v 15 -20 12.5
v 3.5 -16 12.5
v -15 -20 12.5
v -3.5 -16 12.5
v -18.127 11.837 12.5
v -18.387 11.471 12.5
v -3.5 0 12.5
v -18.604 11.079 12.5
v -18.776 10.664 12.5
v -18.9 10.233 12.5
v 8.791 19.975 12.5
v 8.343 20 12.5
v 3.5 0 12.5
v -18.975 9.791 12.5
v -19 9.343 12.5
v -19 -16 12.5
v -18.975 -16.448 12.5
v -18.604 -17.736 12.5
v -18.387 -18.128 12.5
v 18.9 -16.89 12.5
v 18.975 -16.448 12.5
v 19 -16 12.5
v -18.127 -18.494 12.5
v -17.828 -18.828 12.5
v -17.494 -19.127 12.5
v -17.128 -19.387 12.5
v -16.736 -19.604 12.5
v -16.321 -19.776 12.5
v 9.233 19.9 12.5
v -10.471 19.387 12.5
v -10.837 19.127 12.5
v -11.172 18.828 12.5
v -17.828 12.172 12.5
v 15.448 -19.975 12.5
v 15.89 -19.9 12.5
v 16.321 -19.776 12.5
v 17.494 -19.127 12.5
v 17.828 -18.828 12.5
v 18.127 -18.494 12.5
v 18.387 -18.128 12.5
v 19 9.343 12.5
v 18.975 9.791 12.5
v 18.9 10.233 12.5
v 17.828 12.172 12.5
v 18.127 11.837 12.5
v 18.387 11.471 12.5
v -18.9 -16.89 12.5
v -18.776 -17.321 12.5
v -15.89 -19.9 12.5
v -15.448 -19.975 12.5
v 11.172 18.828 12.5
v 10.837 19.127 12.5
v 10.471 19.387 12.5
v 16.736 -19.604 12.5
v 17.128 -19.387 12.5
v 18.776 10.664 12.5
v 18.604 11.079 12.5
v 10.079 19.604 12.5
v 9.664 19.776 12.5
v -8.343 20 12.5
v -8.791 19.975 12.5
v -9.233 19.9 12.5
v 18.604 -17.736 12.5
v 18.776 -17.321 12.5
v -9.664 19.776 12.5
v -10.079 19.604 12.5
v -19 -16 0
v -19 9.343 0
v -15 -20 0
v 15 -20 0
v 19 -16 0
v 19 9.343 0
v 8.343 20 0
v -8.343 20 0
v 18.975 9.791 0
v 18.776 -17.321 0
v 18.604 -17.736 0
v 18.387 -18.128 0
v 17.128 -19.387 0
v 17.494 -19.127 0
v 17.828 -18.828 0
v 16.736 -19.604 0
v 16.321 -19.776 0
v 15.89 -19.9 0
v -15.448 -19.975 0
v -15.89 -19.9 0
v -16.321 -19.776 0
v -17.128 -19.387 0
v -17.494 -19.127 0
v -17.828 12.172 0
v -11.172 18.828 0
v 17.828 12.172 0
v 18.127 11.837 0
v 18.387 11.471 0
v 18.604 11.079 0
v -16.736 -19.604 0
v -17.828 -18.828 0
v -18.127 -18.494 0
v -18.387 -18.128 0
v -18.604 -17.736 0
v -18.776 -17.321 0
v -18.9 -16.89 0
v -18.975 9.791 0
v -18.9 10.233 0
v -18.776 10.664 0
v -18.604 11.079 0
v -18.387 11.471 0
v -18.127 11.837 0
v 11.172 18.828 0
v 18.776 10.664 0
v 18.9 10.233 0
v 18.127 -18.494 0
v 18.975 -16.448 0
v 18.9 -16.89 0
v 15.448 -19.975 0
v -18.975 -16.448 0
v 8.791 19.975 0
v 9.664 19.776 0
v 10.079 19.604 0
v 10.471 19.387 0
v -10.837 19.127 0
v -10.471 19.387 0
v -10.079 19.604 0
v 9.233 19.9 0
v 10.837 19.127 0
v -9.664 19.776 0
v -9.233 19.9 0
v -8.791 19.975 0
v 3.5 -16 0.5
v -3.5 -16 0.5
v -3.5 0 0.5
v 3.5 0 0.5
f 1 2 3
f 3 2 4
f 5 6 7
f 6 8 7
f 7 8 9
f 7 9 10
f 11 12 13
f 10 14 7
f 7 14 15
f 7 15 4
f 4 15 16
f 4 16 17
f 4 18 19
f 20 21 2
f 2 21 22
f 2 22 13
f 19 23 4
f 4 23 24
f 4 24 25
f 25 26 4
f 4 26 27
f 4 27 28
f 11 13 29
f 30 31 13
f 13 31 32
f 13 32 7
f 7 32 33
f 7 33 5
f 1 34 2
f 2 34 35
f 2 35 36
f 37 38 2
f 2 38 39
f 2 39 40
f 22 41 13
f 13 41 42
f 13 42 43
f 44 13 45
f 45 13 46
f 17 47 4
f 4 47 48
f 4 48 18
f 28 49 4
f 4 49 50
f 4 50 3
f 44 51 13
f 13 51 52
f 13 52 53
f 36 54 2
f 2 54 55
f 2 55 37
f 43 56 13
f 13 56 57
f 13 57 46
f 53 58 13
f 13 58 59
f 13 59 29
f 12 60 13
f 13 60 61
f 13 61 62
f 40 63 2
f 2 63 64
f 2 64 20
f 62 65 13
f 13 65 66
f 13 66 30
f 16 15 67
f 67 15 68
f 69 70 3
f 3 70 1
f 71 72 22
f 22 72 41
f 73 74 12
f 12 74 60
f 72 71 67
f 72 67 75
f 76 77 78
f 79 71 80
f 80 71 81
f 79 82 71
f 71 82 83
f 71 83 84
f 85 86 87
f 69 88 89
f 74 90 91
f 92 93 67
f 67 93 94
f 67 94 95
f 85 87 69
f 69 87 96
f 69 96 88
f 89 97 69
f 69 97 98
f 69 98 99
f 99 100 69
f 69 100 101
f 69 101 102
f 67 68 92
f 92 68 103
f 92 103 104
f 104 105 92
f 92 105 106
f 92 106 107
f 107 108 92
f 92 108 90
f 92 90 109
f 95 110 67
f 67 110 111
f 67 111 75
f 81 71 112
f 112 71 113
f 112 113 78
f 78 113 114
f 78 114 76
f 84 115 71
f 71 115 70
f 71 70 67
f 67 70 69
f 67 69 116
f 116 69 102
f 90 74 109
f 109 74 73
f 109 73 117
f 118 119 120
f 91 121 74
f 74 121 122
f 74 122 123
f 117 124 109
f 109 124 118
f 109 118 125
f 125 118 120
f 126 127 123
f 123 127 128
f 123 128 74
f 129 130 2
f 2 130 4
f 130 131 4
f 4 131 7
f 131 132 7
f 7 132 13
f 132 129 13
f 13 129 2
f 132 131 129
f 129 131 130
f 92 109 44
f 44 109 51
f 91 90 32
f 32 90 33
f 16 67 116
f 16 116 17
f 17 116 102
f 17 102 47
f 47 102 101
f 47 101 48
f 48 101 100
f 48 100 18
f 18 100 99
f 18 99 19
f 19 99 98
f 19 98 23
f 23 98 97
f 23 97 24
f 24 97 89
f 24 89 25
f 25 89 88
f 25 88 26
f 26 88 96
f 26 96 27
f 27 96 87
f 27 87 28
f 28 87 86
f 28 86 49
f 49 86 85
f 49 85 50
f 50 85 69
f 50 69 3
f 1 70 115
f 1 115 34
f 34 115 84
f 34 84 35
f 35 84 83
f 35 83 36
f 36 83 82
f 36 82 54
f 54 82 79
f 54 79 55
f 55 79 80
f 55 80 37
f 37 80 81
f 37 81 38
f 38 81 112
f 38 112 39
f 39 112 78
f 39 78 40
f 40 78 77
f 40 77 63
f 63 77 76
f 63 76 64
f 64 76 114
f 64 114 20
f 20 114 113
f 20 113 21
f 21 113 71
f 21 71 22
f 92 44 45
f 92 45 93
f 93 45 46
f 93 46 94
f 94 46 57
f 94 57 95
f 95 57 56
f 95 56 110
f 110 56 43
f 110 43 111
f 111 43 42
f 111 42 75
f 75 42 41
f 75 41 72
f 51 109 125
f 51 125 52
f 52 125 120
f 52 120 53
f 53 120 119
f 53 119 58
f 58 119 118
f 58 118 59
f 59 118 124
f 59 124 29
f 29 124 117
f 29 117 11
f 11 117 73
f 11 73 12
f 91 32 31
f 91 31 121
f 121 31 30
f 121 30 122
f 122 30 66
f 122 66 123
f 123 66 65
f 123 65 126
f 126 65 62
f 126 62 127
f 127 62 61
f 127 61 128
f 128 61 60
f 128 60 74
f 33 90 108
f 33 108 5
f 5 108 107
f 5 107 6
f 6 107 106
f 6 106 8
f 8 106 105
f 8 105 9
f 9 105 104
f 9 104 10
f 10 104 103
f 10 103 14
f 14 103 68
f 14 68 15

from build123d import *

# Parameters (mm, degrees)
SKETCH1_W           = 38
SKETCH1_H           = 40
BOSS_EXTRUDE1_DEPTH = 12.5
SKETCH2_W           = 7
SKETCH2_H           = 16
CUT_EXTRUDE1_DEPTH  = 12
CHAMFER1_SIZE       = 9
FILLET1_R           = 4


with BuildPart() as part:
    # Sketch1 → Boss-Extrude1 (new body)
    with BuildSketch(Plane.XY):
        Rectangle(SKETCH1_W, SKETCH1_H)
    extrude(amount=BOSS_EXTRUDE1_DEPTH)

    # Sketch2 → Cut-Extrude1 (cut)
    with BuildSketch(Plane.XY.offset(12.5)):
        with Locations((0, -8)):
            Rectangle(SKETCH2_W, SKETCH2_H)
    extrude(amount=-CUT_EXTRUDE1_DEPTH, mode=Mode.SUBTRACT)

    # Chamfer1
    chamfer1_edges = [part.edges().sort_by_distance(p)[0] for p in [
        (-19, 20, 6.25),
        (19, 20, 6.25),
    ]]
    chamfer(chamfer1_edges, length=CHAMFER1_SIZE)

    # Fillet1
    fillet1_edges = [part.edges().sort_by_distance(p)[0] for p in [
        (-10, 20, 6.25),
        (10, 20, 6.25),
        (19, 11, 6.25),
        (-19, 11, 6.25),
        (19, -20, 6.25),
        (-19, -20, 6.25),
    ]]
    fillet(fillet1_edges, radius=FILLET1_R)


solid = part.part
